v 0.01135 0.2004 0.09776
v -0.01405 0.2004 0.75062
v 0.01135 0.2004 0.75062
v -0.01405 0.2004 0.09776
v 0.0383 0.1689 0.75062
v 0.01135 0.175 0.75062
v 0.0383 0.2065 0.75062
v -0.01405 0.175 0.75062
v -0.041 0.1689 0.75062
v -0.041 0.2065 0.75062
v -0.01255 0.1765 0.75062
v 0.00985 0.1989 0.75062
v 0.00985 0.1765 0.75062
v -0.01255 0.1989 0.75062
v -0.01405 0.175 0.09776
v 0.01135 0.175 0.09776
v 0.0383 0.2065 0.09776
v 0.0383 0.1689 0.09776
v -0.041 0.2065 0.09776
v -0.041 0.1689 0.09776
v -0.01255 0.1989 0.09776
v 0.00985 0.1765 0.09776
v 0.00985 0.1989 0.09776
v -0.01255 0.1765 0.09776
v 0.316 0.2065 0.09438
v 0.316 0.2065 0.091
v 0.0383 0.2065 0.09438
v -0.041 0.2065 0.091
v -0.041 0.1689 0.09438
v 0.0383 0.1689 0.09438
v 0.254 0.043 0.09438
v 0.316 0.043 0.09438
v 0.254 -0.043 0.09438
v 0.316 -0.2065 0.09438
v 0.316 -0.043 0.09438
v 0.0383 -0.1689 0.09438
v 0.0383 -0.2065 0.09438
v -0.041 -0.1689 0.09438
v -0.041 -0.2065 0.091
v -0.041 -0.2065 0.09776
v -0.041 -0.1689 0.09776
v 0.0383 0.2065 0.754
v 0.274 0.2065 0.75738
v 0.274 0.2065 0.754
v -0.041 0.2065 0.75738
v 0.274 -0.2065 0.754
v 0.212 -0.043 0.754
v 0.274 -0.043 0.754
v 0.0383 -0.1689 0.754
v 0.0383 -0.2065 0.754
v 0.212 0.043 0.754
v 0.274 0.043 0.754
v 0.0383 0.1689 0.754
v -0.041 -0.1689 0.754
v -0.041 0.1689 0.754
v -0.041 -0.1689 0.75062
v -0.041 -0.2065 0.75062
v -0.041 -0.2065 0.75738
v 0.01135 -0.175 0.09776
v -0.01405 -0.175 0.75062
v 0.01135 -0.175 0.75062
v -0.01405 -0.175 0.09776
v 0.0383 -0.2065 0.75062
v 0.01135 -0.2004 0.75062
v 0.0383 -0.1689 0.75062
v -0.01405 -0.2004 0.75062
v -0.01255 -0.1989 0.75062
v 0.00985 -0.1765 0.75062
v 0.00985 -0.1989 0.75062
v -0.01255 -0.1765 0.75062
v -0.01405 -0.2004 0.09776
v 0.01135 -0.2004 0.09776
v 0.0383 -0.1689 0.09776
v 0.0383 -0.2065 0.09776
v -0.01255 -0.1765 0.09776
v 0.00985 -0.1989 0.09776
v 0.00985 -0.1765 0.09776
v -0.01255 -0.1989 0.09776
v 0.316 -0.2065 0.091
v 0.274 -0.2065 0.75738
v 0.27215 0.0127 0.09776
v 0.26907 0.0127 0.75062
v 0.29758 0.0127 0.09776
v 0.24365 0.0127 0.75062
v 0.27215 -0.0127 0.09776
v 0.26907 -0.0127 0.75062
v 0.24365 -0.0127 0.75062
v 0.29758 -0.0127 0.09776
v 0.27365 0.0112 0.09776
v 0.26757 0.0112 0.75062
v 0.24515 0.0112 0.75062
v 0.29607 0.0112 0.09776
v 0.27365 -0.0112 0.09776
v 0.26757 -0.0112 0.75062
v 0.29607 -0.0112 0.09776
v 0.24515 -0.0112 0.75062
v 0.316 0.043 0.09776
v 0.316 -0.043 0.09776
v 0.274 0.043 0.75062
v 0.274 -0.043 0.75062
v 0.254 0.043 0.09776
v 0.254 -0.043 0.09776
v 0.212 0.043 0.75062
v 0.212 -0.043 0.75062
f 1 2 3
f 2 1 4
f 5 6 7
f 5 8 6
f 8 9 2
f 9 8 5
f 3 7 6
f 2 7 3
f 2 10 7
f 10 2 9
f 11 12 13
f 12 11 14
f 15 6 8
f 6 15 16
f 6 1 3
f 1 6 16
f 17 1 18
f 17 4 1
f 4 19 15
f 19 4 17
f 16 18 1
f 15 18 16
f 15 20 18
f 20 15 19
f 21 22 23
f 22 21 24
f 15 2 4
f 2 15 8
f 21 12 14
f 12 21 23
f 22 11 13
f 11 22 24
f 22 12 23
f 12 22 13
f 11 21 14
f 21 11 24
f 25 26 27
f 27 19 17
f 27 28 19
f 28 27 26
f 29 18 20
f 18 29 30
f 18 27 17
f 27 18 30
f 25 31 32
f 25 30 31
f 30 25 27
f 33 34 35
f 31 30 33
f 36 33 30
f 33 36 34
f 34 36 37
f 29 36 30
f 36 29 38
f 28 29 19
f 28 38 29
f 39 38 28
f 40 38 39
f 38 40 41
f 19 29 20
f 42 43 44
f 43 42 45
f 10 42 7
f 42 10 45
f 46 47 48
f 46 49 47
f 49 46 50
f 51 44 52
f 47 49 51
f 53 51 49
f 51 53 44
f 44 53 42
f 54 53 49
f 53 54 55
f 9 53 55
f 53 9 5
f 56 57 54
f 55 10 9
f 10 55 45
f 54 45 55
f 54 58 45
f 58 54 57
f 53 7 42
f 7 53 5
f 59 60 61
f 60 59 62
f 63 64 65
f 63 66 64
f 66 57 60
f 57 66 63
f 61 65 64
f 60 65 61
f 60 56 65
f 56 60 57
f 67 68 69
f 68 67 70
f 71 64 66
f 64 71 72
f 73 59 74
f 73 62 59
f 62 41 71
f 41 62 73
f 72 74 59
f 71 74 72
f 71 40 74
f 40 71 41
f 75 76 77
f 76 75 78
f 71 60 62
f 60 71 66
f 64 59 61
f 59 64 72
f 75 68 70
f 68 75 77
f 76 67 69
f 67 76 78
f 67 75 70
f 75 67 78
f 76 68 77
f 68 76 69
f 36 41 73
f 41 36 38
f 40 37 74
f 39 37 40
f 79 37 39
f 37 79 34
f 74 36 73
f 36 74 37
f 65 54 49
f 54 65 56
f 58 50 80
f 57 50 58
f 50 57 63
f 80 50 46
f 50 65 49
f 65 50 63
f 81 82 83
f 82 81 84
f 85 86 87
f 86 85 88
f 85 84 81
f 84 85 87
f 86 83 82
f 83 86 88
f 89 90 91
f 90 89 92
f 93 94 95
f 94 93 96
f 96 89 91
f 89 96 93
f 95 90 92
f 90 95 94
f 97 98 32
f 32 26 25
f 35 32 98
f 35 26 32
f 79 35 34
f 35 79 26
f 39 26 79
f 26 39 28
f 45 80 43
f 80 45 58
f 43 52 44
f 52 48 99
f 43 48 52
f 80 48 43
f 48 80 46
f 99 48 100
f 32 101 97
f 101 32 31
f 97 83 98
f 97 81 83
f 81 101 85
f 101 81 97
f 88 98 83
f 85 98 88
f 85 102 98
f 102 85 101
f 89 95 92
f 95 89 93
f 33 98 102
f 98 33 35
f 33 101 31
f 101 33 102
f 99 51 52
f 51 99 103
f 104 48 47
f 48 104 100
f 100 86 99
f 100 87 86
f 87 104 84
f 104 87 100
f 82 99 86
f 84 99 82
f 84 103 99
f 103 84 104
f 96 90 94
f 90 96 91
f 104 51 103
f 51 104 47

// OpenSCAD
echo(version=version());

topPlateDepth = 0.315;
bottomPlateDepth = 0.357;
baseWidth = 0.413;
plateThickness = 0.00338;
supportThickness = 0.0254;
supportWallThickness = 0.0015;
sideSupportPlateWidth = 0.0376;
sideSupportPlateDepth = 0.0793;
middleSupportPlateWidth = 0.086;
middleSupportPlateDepth = 0.062;
bottomPlateElevation = 0.091;
topPlateElevation = 0.754;
wheelsAtDepth = 0.041;

color("grey")
    translate([-wheelsAtDepth,baseWidth/2,0])
    rotate([0, 0, -90])
    translate([0, 0, 0]) {
        translate([0,0,bottomPlateElevation]) cube(size=[baseWidth, bottomPlateDepth, plateThickness], center=false);
        translate([0,0,topPlateElevation]) cube(size=[baseWidth, topPlateDepth, plateThickness], center=false);
 
         
        // Supports
        for (j=[0,baseWidth-sideSupportPlateWidth]) {
            difference() {
                translate([j+sideSupportPlateWidth/2 - supportThickness/2,sideSupportPlateDepth/2 - supportThickness/2,bottomPlateElevation+plateThickness*2]) cube(size=[supportThickness, supportThickness, topPlateElevation-bottomPlateElevation-plateThickness*3], center=false);
                translate([j+sideSupportPlateWidth/2 - supportThickness/2 + supportWallThickness,sideSupportPlateDepth/2 - supportThickness/2 + supportWallThickness, bottomPlateElevation+plateThickness*2]) cube(size=[supportThickness-supportWallThickness*2, supportThickness-supportWallThickness*2, topPlateElevation-bottomPlateElevation-plateThickness*3], center=false);            }
            for (i=[bottomPlateElevation+plateThickness,topPlateElevation-plateThickness])
                translate([j,0,i]) cube(size=[sideSupportPlateWidth, sideSupportPlateDepth, plateThickness], center=false);
        }
        
        translate([baseWidth/2-supportThickness/2,bottomPlateDepth - middleSupportPlateDepth/2 -supportThickness/2, bottomPlateElevation+plateThickness*1]) 
        rotate([2.5, 0, 0])
        difference() {
            cube(size=[supportThickness, supportThickness, topPlateElevation-bottomPlateElevation-plateThickness], center=false);
            translate([supportWallThickness, supportWallThickness, 0]) cube(size=[supportThickness - supportWallThickness*2, supportThickness - supportWallThickness*2, topPlateElevation-bottomPlateElevation-plateThickness], center=false);            
        }

        translate([baseWidth/2 - middleSupportPlateWidth/2, bottomPlateDepth-middleSupportPlateDepth, bottomPlateElevation+plateThickness]) cube(size=[middleSupportPlateWidth, middleSupportPlateDepth, plateThickness], center=false);

        translate([baseWidth/2 - middleSupportPlateWidth/2, topPlateDepth-middleSupportPlateDepth, topPlateElevation-plateThickness]) cube(size=[middleSupportPlateWidth, middleSupportPlateDepth, plateThickness], center=false);
        
    }
/*
color("black")
    rotate([0,90,0])
        translate([0.025, -0.12, -0.25-0.008])
            cylinder(0.016,0.06,0.06,true,$fn=18);

color("black")
    rotate([0,90,0])
        translate([0.025, -0.12, 0.25+0.008])
            cylinder(0.016,0.06,0.06,true,$fn=18);
color("black")
        cylinder(0.79375,0.008,0.008,false,$fn=18);
color("black")
    translate([0, 0, 0.79375])
        cube([0.20,0.08,0.05],center=true);
*/
